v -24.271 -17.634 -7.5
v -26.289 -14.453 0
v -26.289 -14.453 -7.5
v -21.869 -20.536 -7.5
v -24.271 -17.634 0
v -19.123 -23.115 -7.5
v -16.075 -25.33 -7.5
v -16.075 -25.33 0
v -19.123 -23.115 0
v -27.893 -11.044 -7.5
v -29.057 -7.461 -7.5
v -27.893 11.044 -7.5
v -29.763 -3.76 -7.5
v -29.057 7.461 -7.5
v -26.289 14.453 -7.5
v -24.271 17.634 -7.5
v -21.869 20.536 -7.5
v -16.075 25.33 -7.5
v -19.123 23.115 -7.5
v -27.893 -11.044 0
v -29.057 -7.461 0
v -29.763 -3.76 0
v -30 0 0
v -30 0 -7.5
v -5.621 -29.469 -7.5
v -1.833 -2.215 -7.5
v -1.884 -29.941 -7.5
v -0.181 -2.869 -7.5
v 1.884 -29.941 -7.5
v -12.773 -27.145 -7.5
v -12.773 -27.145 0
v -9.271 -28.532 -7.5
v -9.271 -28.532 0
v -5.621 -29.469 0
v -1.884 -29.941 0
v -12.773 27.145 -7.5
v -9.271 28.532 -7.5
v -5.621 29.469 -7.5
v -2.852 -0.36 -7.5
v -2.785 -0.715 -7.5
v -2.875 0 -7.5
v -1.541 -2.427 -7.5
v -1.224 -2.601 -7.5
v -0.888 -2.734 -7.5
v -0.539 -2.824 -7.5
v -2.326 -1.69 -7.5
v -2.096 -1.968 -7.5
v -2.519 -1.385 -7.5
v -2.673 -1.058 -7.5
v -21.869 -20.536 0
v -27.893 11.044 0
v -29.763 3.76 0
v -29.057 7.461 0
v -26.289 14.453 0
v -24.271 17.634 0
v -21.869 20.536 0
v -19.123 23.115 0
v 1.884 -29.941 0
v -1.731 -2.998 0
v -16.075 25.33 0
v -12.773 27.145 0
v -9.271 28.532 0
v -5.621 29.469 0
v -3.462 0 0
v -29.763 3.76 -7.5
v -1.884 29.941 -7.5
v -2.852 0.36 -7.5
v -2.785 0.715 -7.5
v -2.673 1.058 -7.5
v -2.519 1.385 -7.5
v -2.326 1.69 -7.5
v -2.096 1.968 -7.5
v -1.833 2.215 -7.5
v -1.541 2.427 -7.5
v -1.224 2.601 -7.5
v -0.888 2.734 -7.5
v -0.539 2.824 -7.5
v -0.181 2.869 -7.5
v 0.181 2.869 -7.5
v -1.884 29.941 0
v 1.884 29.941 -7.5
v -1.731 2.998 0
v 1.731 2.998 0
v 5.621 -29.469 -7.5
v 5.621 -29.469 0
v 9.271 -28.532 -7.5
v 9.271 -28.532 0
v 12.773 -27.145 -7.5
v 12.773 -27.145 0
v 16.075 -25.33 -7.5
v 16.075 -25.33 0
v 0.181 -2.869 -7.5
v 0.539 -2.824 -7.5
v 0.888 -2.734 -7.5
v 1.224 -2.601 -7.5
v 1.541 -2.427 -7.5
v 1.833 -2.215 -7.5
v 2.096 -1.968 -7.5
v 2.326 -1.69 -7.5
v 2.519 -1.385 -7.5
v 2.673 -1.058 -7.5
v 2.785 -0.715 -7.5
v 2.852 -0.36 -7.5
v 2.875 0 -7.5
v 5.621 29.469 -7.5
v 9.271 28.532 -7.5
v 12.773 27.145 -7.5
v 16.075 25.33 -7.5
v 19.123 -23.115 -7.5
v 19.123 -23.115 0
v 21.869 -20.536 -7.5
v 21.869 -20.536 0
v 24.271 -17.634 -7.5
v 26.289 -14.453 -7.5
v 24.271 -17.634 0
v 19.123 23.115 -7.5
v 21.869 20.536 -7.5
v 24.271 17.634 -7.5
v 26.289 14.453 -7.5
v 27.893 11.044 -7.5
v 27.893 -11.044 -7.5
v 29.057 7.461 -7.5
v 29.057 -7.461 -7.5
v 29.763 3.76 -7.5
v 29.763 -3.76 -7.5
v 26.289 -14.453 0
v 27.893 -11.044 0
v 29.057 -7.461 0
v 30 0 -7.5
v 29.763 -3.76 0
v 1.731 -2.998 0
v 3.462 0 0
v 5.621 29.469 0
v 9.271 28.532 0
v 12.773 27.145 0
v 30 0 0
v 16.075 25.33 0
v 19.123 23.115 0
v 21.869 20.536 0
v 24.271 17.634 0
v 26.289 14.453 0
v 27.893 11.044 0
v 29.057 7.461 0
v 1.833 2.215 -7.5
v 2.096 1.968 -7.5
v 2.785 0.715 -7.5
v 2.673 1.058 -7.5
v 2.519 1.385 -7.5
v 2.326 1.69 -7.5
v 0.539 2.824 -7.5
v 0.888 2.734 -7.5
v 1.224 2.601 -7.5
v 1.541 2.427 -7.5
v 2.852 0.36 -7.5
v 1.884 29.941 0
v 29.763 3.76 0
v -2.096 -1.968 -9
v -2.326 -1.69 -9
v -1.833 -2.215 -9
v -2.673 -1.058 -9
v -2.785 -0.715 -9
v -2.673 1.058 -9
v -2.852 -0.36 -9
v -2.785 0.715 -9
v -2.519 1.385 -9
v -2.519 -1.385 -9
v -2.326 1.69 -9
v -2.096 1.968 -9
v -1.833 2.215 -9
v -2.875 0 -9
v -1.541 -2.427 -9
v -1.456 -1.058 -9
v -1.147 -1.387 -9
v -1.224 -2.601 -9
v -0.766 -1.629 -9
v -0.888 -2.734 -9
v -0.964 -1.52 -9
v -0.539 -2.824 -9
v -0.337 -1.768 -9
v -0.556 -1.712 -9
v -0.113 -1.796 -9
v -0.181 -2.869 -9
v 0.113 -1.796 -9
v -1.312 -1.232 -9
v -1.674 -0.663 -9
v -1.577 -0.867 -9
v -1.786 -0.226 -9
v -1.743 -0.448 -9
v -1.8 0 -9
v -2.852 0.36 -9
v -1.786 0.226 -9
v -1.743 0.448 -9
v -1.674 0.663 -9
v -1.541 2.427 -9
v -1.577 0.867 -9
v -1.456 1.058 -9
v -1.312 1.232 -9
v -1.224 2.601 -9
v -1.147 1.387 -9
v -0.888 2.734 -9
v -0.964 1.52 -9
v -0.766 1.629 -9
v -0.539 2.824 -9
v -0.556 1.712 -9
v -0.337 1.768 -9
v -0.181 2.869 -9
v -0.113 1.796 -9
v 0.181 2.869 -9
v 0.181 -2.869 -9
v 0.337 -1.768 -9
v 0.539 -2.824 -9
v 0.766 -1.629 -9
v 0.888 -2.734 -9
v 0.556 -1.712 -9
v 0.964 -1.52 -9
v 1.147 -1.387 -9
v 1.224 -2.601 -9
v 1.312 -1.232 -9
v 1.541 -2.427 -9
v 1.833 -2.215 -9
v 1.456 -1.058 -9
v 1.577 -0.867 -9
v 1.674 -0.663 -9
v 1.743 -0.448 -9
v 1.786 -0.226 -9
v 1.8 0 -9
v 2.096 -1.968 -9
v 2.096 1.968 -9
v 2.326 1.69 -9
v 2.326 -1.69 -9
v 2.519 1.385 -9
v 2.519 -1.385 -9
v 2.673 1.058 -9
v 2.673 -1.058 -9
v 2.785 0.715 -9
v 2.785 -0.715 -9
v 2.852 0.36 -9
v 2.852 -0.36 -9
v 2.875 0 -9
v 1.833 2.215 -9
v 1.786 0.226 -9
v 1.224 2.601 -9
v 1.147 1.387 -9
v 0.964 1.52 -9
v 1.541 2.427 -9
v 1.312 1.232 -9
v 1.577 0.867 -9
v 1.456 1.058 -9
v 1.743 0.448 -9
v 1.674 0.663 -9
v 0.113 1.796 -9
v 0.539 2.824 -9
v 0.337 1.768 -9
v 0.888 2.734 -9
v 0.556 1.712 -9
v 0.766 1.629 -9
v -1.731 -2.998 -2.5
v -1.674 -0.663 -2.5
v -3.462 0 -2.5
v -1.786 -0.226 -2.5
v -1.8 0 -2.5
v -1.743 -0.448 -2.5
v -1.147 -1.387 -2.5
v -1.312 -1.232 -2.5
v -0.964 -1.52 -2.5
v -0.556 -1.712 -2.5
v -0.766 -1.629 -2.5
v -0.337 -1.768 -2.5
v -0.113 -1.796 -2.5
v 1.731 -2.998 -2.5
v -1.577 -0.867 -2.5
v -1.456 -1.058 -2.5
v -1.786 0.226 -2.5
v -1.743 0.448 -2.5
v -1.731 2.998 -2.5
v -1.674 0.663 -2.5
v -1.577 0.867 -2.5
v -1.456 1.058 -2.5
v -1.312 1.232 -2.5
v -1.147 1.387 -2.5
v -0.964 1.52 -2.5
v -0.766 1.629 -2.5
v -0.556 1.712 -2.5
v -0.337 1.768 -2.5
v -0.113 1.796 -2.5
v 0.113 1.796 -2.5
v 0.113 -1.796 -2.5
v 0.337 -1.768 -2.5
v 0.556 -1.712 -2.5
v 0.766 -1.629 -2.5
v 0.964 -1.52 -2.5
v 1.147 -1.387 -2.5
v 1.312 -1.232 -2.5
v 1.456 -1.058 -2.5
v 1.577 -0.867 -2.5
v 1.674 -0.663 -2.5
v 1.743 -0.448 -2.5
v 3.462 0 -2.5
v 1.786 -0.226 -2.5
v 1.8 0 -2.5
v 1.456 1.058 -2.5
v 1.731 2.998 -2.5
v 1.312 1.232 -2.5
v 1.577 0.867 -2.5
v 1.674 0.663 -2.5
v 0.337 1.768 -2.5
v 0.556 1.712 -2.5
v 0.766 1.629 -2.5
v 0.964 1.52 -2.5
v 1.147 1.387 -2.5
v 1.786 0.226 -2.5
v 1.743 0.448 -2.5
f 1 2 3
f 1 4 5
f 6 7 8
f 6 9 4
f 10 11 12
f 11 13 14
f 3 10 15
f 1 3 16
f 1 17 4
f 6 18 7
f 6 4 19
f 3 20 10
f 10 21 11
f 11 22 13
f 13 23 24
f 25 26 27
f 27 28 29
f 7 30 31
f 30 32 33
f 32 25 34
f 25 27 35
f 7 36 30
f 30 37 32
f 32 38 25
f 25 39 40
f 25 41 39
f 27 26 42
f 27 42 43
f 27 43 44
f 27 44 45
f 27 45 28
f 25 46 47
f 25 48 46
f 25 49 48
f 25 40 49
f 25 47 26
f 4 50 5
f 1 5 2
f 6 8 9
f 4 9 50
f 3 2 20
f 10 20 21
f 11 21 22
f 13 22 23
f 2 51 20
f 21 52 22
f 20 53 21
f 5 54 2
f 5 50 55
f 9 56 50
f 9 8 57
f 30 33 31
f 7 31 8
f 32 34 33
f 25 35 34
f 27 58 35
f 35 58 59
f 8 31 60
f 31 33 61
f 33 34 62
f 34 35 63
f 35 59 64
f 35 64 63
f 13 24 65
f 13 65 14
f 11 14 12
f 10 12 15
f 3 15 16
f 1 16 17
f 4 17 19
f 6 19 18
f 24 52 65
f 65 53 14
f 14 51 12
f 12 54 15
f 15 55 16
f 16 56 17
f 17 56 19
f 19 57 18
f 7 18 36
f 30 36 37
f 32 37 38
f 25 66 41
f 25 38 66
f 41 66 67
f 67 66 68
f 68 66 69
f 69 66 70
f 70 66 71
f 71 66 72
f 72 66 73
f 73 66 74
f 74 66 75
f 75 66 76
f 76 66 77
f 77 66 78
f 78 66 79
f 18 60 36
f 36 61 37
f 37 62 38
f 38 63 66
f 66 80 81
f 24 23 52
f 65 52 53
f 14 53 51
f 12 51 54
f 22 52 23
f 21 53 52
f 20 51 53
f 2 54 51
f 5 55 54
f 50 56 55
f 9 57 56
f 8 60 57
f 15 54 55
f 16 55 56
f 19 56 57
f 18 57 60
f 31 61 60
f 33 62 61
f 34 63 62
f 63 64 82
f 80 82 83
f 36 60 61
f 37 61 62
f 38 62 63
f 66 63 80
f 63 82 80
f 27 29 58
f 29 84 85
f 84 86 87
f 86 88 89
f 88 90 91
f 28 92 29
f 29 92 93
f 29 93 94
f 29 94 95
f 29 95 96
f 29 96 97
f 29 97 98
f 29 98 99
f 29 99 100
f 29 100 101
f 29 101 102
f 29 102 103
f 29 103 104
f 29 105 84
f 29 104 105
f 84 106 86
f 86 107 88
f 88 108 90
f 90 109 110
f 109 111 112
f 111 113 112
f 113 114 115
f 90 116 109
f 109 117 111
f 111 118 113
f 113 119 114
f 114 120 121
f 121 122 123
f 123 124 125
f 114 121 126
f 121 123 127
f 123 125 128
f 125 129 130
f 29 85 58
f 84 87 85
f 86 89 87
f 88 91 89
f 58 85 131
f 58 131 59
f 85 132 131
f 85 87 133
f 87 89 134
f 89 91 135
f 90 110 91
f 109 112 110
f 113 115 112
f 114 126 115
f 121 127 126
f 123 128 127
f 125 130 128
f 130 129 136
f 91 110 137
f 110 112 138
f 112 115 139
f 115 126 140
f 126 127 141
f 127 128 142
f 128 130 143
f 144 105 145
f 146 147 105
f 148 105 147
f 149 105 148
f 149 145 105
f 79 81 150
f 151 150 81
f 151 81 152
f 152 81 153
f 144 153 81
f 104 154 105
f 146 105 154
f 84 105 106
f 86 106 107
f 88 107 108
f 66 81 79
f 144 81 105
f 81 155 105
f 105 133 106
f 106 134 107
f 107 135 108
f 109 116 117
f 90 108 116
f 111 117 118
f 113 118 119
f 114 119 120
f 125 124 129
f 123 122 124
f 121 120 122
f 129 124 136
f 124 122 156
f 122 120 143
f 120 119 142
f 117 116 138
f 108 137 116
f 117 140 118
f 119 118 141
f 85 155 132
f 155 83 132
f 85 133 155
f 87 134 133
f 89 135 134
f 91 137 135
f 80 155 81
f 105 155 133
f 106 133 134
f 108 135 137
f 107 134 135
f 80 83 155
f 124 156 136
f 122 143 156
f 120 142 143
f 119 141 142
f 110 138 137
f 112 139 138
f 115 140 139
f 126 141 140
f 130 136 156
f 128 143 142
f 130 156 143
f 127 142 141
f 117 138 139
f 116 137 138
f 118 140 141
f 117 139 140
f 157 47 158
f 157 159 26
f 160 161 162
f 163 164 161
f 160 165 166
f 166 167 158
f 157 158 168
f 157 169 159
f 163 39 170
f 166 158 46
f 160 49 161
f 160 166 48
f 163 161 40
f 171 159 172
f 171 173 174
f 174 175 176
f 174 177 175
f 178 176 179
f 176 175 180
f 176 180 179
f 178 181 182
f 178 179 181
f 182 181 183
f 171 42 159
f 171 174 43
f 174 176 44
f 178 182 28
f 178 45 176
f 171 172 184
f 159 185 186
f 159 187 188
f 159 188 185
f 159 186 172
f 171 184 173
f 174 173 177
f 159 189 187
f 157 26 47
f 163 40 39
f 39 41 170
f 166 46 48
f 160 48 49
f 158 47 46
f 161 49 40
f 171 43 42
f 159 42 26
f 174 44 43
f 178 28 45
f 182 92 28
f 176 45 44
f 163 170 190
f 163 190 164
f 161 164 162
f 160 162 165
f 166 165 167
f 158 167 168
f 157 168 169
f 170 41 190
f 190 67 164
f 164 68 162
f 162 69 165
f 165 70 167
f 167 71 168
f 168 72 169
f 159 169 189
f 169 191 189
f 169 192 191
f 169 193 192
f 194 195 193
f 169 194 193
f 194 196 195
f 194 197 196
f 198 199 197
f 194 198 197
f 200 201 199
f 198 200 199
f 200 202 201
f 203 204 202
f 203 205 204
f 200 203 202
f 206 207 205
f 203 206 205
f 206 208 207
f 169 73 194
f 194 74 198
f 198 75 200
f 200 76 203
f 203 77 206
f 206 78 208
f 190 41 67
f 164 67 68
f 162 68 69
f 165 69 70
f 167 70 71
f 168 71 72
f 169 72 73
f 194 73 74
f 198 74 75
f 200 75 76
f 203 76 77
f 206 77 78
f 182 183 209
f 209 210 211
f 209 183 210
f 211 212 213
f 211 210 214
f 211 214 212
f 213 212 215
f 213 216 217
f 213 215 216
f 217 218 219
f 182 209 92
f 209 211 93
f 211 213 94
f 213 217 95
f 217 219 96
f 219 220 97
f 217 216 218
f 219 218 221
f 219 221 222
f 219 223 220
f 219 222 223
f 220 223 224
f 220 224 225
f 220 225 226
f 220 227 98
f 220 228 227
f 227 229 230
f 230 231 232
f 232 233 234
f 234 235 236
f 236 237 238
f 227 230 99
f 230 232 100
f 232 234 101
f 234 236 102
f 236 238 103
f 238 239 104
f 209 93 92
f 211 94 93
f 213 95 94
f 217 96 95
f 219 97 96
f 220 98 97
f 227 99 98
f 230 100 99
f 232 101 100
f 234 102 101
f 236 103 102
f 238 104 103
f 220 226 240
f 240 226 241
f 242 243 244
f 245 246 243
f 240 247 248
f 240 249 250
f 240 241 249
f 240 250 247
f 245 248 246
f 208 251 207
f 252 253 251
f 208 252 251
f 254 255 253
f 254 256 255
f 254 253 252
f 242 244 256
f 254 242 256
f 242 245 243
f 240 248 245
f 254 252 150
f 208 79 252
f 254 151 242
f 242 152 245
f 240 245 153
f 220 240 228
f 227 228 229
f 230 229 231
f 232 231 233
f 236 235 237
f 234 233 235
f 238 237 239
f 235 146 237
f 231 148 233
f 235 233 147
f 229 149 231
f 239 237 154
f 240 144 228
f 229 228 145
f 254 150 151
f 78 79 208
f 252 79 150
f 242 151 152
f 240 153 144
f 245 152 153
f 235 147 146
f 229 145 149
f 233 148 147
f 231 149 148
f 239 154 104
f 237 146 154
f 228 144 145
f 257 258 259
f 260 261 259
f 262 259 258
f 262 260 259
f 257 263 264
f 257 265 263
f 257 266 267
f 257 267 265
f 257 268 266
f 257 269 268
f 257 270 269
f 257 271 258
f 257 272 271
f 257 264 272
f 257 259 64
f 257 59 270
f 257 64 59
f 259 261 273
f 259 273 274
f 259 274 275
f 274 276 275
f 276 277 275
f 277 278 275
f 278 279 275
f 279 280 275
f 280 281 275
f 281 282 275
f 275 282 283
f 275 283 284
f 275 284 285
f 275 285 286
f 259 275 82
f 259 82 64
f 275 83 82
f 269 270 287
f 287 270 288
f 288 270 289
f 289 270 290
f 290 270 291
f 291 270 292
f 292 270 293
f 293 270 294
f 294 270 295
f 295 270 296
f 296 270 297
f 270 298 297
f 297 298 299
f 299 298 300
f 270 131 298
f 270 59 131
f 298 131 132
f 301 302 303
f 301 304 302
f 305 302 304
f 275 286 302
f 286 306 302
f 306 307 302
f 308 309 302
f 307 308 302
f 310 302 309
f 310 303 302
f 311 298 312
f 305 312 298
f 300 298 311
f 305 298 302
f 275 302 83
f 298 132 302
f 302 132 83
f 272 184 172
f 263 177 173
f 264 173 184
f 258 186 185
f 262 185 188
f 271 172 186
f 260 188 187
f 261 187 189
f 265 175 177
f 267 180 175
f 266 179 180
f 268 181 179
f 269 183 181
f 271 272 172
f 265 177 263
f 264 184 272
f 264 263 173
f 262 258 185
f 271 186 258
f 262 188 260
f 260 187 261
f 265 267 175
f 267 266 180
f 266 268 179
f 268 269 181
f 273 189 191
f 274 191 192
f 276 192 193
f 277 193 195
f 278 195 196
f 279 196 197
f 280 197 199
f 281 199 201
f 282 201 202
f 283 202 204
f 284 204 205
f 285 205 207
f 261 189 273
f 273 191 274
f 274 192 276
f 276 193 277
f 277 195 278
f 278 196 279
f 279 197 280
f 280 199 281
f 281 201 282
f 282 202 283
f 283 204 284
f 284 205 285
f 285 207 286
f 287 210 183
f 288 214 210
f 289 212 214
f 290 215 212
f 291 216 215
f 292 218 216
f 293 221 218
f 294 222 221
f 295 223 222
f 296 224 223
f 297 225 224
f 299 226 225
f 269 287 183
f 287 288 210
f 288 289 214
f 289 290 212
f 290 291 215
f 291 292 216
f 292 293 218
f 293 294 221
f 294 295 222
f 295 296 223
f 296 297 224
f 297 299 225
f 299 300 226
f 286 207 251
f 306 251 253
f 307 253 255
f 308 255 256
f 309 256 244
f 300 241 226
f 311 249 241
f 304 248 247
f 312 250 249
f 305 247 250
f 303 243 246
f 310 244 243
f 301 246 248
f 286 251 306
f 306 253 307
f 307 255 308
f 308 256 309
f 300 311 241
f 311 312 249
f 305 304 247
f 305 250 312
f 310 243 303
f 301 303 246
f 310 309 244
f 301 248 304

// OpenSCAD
$fn = 50;


difference() {
	union() {
		translate(v = [0, 0, -7.5000000000]) {
			cylinder(h = 7.5000000000, r = 30.0000000000);
		}
		#translate(v = [0, 0, -9.0000000000]) {
			cylinder(h = 9, r = 2.8750000000);
		}
	}
	union() {
		translate(v = [0, 0, 0]) {
			rotate(a = [0, 0, 0]) {
				difference() {
					union() {
						translate(v = [0, 0, -2.5000000000]) {
							linear_extrude(height = 2.5000000000) {
								polygon(points = [[3.4620000000, 0.0000000000], [1.7310000000, 2.9981799479], [-1.7310000000, 2.9981799479], [-3.4620000000, 0.0000000000], [-1.7310000000, -2.9981799479], [1.7310000000, -2.9981799479]]);
							}
						}
					}
					union();
				}
			}
		}
		#translate(v = [0, 0, -100.0000000000]) {
			cylinder(h = 200, r = 1.8000000000);
		}
	}
}
